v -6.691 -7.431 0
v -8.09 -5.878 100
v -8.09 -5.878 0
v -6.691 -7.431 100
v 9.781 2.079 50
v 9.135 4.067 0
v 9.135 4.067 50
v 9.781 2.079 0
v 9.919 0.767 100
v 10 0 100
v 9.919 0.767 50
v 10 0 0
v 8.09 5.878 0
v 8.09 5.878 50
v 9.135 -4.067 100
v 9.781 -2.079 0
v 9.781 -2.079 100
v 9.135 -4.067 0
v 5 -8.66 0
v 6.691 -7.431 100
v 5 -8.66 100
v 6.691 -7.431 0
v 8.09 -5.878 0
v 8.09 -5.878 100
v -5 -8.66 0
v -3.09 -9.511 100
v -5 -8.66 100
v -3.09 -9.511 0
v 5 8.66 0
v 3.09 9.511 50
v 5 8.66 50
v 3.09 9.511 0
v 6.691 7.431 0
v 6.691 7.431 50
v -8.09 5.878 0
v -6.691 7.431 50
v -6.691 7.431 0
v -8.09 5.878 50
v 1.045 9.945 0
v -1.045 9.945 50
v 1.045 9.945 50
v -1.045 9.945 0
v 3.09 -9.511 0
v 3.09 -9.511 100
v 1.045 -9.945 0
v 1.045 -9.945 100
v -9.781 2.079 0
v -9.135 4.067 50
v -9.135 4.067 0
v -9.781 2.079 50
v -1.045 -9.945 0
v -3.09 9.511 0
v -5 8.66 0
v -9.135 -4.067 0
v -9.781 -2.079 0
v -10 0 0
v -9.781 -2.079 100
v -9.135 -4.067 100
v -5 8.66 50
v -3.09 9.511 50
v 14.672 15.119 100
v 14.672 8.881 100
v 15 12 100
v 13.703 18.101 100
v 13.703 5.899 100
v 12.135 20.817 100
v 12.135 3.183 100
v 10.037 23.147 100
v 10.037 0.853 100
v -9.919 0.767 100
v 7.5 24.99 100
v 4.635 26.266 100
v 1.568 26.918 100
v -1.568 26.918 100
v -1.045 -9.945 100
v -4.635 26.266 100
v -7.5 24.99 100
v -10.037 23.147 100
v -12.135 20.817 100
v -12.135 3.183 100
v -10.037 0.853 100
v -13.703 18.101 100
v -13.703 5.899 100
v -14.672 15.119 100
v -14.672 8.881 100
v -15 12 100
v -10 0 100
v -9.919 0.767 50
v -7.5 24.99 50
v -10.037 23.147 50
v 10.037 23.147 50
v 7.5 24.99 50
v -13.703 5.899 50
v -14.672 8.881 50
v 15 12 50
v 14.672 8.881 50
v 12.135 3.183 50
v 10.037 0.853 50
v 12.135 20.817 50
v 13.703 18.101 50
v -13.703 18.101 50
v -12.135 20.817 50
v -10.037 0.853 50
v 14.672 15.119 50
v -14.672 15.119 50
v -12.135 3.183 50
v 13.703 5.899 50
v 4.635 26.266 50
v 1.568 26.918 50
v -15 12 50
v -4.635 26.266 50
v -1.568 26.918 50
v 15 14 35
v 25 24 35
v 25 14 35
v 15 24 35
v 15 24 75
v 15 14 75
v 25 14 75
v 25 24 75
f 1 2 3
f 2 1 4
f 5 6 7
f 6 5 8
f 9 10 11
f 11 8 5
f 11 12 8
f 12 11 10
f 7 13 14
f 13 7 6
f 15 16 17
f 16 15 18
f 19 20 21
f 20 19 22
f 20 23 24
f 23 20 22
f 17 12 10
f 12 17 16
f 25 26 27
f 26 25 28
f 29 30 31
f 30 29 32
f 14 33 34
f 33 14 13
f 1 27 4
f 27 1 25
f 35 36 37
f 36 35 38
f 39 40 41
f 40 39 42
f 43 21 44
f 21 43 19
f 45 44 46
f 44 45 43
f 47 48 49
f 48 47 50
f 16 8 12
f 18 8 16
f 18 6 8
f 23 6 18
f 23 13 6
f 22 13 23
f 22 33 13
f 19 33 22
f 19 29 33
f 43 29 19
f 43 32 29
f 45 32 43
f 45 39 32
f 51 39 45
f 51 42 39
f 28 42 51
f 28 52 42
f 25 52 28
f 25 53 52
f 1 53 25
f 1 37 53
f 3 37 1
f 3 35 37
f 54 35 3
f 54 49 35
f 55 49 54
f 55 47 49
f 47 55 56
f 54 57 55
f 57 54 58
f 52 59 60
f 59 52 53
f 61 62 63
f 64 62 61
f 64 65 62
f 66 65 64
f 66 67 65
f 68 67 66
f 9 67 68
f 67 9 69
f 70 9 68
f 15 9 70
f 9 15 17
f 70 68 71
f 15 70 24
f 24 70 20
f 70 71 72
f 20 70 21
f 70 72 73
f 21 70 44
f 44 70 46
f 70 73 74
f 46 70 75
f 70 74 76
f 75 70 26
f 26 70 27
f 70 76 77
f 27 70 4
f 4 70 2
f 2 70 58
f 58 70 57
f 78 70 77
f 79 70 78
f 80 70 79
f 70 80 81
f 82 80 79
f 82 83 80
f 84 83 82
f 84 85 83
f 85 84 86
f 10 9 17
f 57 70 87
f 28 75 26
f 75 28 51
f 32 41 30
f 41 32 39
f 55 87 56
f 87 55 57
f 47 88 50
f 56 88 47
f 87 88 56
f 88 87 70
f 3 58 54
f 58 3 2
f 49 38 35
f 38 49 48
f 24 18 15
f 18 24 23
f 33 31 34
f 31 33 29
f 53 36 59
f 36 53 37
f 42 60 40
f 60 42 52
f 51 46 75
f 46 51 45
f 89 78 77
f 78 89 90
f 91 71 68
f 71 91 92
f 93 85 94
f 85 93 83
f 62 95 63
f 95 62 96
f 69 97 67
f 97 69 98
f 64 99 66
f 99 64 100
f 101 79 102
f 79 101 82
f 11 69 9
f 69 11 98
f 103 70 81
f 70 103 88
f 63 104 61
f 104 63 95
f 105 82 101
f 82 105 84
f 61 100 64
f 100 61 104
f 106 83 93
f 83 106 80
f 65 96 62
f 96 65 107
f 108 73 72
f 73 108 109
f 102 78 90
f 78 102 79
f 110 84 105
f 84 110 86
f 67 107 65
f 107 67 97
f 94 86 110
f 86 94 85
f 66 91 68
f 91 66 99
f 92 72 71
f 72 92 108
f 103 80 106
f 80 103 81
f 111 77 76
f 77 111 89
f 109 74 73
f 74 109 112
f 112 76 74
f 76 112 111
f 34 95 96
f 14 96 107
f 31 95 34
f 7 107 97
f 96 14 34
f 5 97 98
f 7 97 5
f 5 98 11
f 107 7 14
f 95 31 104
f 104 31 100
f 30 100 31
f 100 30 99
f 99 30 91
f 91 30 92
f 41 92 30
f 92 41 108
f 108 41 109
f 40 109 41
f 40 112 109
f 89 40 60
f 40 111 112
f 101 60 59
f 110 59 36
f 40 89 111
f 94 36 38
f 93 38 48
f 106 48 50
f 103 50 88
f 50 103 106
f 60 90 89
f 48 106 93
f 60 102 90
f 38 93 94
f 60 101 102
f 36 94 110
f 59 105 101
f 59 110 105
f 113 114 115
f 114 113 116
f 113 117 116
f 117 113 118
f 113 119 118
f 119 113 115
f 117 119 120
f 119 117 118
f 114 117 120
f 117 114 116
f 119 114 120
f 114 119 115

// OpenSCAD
// Pliers Design in OpenSCAD

// Parameters
handle_length = 100;
handle_diameter = 20;
jaw_length = 50;
jaw_diameter = 30;
pivot_diameter = 15;
pivot_length = 25;
pivot_hole_diameter = 4;
finger_length = 40;
finger_width = 10;
finger_height = 10;

// Handle
module handle() {
  cylinder(h = handle_length, d = handle_diameter);
}

// Jaw
module jaw() {
  cylinder(h = jaw_length, d = jaw_diameter);
}

// Pivot
module pivot() {
  cylinder(h = pivot_length, d = pivot_diameter);
}

// Finger
module finger() {
  cube([finger_width, finger_height, finger_length]);
}

// Assembly
difference() {
  union() {
    translate([0, 0, 0]) {
      handle();
      translate([0, handle_diameter/2 + 2, handle_length - jaw_length]) {
        jaw();
      }
    }
    translate([0, handle_diameter/2 + 2, handle_length - jaw_length]) {
      pivot();
      translate([0, handle_diameter/2 + 2, pivot_length]) {
        translate([0, 0, 0]) {
          rotate([90, 0, 0]) {
            translate([jaw_diameter/2, 0, 0]) {
              rotate([90, 0, 0]) {
                translate([0, 0, 0]) {
                  translate([0, 0, 0]) {
                    finger();
                  }
                }
              }
            }
          }
        }
      }
    }
  }
  translate([0, handle_diameter/2 + 2, handle_length - jaw_length]) {
    difference() {
        cube([handle_diameter*2, handle_diameter*2, handle_length]);
        translate([0, 0, 0]) {
            cube([handle_diameter*2, handle_diameter*2, handle_length]);
        }
    }
  }
}
